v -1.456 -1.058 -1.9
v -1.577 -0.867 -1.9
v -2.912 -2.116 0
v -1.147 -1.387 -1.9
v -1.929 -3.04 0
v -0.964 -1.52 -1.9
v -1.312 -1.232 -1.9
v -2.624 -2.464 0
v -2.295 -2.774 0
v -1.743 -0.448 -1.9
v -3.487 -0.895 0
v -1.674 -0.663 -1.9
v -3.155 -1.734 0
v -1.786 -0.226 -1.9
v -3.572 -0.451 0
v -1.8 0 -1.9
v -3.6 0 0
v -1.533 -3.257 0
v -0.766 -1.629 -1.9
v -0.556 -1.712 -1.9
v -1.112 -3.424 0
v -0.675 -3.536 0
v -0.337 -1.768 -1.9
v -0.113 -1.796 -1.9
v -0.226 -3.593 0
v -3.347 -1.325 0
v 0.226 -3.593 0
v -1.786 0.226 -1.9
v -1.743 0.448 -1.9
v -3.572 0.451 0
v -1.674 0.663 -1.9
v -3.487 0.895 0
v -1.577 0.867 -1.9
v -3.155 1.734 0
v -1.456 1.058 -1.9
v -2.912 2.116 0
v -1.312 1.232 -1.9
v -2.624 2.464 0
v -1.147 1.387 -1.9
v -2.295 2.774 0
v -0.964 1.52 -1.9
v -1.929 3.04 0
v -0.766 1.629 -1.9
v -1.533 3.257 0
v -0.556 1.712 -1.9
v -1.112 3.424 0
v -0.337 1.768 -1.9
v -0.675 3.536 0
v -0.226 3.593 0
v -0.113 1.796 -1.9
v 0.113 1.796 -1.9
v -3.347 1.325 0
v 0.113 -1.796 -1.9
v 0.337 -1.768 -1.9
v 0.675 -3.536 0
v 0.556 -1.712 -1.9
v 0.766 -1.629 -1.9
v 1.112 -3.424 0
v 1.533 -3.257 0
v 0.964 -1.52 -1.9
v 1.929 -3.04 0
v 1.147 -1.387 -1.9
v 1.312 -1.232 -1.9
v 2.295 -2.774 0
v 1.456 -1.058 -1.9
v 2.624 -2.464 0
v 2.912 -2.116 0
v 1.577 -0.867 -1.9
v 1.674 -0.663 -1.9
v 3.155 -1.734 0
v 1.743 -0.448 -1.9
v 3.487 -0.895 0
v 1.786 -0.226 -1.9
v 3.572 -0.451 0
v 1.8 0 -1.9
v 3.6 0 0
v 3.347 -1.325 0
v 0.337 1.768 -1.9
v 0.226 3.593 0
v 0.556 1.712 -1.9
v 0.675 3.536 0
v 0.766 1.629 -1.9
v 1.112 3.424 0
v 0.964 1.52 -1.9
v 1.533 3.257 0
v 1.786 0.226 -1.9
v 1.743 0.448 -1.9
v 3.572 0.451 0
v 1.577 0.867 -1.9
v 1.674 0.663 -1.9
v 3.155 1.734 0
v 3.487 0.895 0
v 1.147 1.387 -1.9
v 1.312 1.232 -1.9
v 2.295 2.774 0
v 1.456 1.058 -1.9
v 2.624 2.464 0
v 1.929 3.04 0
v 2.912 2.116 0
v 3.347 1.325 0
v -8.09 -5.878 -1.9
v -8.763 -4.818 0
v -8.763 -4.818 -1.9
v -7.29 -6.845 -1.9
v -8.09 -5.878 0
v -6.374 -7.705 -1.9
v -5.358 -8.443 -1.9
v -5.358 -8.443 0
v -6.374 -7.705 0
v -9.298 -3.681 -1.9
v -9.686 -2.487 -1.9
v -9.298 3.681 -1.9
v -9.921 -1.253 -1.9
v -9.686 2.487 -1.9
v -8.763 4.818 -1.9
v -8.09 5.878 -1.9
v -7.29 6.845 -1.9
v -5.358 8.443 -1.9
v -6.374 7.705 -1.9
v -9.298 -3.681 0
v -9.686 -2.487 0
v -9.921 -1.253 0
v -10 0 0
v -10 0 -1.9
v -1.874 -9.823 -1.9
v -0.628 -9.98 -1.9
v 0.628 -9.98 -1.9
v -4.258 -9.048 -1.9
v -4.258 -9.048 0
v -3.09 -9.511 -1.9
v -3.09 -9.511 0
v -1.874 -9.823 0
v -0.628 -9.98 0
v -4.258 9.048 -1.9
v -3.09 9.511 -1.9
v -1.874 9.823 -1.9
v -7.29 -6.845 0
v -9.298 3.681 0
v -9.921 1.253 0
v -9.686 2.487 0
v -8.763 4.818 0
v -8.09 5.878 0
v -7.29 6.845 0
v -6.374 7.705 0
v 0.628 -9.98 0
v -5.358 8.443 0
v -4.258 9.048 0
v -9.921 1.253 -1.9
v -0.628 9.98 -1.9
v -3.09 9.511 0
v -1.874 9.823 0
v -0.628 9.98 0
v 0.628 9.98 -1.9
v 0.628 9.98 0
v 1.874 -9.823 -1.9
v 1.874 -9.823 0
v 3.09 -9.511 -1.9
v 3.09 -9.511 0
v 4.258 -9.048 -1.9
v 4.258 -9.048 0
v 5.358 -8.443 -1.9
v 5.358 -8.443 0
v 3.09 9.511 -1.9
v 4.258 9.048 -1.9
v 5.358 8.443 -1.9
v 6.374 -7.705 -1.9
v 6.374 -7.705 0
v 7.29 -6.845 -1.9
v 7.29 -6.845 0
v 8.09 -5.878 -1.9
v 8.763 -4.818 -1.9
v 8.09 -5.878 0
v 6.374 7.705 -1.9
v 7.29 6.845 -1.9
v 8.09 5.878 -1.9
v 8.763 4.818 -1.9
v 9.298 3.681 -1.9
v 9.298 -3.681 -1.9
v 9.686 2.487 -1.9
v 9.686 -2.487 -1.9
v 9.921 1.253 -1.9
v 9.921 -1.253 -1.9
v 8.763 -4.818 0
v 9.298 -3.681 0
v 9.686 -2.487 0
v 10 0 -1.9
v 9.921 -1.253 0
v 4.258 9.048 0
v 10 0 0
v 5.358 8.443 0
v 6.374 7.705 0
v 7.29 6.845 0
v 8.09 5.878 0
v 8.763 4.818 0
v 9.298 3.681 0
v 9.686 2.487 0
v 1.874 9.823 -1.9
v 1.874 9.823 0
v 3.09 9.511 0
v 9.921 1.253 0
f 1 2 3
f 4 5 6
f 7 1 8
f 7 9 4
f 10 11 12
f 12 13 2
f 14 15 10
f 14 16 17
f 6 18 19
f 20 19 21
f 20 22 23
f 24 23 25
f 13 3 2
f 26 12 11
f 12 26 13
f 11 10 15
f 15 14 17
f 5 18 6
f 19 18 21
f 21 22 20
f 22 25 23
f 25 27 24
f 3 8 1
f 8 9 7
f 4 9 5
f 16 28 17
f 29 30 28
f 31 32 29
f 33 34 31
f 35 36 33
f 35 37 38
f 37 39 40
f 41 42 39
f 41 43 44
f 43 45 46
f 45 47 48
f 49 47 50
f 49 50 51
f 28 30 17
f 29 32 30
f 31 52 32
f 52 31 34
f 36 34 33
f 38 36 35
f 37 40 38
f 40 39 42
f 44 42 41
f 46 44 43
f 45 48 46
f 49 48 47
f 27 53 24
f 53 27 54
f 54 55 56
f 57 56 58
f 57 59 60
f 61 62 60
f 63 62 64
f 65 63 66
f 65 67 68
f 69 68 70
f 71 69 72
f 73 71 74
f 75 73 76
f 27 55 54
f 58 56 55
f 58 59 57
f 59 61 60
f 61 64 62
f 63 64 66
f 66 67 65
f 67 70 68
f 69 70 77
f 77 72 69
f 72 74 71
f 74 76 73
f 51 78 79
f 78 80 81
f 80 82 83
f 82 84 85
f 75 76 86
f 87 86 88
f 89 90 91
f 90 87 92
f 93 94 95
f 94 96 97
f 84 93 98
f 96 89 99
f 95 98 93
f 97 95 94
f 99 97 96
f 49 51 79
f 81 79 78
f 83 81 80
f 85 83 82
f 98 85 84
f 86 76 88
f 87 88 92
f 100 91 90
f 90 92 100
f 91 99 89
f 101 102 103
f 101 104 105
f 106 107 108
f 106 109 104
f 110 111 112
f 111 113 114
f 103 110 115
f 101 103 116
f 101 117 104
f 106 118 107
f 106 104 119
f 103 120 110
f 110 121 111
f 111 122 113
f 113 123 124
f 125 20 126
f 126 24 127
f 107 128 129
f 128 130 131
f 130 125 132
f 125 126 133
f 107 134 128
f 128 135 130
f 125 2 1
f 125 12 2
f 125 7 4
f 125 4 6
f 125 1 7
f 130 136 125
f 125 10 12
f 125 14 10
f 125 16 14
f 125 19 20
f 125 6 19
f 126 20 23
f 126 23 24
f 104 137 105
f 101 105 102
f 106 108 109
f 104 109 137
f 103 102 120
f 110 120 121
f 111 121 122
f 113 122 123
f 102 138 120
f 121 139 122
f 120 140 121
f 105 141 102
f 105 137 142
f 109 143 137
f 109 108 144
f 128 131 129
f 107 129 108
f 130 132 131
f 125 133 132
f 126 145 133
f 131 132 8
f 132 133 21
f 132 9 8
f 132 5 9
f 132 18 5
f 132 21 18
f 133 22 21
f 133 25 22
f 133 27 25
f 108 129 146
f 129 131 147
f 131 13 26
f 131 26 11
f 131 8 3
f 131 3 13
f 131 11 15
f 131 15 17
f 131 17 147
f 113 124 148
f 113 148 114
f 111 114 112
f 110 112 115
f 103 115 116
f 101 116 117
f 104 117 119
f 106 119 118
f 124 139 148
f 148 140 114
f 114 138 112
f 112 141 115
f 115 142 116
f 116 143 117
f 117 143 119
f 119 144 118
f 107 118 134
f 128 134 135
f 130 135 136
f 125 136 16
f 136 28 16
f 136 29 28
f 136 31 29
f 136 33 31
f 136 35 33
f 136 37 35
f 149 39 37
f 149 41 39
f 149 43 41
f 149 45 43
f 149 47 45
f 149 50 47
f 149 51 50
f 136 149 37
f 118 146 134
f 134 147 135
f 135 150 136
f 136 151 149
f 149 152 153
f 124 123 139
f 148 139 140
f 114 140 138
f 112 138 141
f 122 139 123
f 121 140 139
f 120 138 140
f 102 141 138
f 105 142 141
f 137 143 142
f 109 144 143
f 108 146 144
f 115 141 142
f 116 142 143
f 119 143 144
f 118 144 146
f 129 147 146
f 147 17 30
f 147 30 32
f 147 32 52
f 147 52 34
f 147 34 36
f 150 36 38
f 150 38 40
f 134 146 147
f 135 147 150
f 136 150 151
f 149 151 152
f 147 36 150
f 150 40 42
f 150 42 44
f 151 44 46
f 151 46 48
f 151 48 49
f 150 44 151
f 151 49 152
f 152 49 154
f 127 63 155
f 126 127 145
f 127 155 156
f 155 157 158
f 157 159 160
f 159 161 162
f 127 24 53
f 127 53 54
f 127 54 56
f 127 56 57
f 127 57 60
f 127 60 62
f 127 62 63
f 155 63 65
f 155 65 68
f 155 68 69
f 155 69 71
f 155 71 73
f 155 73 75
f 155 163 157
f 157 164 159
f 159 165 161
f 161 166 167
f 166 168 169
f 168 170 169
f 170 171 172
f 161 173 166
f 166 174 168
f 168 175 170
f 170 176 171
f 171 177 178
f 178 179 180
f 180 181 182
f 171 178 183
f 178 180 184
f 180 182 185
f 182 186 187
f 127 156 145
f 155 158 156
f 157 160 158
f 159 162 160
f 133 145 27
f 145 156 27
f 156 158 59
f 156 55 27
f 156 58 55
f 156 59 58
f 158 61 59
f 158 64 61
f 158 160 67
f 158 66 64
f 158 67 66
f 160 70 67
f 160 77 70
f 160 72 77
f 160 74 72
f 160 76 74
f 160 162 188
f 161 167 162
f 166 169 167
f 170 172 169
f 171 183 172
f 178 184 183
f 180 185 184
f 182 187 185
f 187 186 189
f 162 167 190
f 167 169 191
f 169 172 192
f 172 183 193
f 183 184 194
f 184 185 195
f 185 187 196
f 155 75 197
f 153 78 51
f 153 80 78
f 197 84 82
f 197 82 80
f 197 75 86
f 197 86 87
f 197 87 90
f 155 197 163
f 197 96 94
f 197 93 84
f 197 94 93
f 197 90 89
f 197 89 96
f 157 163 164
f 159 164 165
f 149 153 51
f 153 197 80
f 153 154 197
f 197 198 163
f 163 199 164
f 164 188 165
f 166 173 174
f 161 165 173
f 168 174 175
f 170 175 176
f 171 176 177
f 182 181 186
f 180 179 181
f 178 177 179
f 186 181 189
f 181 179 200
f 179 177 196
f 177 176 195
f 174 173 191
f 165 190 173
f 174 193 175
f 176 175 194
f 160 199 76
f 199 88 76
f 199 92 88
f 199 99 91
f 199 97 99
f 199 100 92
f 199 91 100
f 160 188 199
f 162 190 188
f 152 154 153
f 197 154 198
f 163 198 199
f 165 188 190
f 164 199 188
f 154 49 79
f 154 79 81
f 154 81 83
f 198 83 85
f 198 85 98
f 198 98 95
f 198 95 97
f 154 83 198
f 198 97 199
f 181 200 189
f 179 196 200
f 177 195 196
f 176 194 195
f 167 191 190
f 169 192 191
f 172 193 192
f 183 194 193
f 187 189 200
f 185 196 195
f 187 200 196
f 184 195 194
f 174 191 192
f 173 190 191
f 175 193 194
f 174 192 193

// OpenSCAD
$fn = 50;


difference() {
	union() {
		translate(v = [0, 0, -1.9000000000]) {
			cylinder(h = 1.9000000000, r = 10.0000000000);
		}
	}
	union() {
		translate(v = [0, 0, 0]) {
			rotate(a = [0, 0, 0]) {
				difference() {
					union() {
						translate(v = [0, 0, -4.9000000000]) {
							cylinder(h = 4.9000000000, r = 1.5000000000);
						}
						translate(v = [0, 0, -1.9000000000]) {
							cylinder(h = 1.9000000000, r1 = 1.8000000000, r2 = 3.6000000000);
						}
						translate(v = [0, 0, -4.9000000000]) {
							cylinder(h = 4.9000000000, r = 1.8000000000);
						}
						translate(v = [0, 0, -4.9000000000]) {
							cylinder(h = 4.9000000000, r = 1.5000000000);
						}
					}
					union();
				}
			}
		}
	}
}
